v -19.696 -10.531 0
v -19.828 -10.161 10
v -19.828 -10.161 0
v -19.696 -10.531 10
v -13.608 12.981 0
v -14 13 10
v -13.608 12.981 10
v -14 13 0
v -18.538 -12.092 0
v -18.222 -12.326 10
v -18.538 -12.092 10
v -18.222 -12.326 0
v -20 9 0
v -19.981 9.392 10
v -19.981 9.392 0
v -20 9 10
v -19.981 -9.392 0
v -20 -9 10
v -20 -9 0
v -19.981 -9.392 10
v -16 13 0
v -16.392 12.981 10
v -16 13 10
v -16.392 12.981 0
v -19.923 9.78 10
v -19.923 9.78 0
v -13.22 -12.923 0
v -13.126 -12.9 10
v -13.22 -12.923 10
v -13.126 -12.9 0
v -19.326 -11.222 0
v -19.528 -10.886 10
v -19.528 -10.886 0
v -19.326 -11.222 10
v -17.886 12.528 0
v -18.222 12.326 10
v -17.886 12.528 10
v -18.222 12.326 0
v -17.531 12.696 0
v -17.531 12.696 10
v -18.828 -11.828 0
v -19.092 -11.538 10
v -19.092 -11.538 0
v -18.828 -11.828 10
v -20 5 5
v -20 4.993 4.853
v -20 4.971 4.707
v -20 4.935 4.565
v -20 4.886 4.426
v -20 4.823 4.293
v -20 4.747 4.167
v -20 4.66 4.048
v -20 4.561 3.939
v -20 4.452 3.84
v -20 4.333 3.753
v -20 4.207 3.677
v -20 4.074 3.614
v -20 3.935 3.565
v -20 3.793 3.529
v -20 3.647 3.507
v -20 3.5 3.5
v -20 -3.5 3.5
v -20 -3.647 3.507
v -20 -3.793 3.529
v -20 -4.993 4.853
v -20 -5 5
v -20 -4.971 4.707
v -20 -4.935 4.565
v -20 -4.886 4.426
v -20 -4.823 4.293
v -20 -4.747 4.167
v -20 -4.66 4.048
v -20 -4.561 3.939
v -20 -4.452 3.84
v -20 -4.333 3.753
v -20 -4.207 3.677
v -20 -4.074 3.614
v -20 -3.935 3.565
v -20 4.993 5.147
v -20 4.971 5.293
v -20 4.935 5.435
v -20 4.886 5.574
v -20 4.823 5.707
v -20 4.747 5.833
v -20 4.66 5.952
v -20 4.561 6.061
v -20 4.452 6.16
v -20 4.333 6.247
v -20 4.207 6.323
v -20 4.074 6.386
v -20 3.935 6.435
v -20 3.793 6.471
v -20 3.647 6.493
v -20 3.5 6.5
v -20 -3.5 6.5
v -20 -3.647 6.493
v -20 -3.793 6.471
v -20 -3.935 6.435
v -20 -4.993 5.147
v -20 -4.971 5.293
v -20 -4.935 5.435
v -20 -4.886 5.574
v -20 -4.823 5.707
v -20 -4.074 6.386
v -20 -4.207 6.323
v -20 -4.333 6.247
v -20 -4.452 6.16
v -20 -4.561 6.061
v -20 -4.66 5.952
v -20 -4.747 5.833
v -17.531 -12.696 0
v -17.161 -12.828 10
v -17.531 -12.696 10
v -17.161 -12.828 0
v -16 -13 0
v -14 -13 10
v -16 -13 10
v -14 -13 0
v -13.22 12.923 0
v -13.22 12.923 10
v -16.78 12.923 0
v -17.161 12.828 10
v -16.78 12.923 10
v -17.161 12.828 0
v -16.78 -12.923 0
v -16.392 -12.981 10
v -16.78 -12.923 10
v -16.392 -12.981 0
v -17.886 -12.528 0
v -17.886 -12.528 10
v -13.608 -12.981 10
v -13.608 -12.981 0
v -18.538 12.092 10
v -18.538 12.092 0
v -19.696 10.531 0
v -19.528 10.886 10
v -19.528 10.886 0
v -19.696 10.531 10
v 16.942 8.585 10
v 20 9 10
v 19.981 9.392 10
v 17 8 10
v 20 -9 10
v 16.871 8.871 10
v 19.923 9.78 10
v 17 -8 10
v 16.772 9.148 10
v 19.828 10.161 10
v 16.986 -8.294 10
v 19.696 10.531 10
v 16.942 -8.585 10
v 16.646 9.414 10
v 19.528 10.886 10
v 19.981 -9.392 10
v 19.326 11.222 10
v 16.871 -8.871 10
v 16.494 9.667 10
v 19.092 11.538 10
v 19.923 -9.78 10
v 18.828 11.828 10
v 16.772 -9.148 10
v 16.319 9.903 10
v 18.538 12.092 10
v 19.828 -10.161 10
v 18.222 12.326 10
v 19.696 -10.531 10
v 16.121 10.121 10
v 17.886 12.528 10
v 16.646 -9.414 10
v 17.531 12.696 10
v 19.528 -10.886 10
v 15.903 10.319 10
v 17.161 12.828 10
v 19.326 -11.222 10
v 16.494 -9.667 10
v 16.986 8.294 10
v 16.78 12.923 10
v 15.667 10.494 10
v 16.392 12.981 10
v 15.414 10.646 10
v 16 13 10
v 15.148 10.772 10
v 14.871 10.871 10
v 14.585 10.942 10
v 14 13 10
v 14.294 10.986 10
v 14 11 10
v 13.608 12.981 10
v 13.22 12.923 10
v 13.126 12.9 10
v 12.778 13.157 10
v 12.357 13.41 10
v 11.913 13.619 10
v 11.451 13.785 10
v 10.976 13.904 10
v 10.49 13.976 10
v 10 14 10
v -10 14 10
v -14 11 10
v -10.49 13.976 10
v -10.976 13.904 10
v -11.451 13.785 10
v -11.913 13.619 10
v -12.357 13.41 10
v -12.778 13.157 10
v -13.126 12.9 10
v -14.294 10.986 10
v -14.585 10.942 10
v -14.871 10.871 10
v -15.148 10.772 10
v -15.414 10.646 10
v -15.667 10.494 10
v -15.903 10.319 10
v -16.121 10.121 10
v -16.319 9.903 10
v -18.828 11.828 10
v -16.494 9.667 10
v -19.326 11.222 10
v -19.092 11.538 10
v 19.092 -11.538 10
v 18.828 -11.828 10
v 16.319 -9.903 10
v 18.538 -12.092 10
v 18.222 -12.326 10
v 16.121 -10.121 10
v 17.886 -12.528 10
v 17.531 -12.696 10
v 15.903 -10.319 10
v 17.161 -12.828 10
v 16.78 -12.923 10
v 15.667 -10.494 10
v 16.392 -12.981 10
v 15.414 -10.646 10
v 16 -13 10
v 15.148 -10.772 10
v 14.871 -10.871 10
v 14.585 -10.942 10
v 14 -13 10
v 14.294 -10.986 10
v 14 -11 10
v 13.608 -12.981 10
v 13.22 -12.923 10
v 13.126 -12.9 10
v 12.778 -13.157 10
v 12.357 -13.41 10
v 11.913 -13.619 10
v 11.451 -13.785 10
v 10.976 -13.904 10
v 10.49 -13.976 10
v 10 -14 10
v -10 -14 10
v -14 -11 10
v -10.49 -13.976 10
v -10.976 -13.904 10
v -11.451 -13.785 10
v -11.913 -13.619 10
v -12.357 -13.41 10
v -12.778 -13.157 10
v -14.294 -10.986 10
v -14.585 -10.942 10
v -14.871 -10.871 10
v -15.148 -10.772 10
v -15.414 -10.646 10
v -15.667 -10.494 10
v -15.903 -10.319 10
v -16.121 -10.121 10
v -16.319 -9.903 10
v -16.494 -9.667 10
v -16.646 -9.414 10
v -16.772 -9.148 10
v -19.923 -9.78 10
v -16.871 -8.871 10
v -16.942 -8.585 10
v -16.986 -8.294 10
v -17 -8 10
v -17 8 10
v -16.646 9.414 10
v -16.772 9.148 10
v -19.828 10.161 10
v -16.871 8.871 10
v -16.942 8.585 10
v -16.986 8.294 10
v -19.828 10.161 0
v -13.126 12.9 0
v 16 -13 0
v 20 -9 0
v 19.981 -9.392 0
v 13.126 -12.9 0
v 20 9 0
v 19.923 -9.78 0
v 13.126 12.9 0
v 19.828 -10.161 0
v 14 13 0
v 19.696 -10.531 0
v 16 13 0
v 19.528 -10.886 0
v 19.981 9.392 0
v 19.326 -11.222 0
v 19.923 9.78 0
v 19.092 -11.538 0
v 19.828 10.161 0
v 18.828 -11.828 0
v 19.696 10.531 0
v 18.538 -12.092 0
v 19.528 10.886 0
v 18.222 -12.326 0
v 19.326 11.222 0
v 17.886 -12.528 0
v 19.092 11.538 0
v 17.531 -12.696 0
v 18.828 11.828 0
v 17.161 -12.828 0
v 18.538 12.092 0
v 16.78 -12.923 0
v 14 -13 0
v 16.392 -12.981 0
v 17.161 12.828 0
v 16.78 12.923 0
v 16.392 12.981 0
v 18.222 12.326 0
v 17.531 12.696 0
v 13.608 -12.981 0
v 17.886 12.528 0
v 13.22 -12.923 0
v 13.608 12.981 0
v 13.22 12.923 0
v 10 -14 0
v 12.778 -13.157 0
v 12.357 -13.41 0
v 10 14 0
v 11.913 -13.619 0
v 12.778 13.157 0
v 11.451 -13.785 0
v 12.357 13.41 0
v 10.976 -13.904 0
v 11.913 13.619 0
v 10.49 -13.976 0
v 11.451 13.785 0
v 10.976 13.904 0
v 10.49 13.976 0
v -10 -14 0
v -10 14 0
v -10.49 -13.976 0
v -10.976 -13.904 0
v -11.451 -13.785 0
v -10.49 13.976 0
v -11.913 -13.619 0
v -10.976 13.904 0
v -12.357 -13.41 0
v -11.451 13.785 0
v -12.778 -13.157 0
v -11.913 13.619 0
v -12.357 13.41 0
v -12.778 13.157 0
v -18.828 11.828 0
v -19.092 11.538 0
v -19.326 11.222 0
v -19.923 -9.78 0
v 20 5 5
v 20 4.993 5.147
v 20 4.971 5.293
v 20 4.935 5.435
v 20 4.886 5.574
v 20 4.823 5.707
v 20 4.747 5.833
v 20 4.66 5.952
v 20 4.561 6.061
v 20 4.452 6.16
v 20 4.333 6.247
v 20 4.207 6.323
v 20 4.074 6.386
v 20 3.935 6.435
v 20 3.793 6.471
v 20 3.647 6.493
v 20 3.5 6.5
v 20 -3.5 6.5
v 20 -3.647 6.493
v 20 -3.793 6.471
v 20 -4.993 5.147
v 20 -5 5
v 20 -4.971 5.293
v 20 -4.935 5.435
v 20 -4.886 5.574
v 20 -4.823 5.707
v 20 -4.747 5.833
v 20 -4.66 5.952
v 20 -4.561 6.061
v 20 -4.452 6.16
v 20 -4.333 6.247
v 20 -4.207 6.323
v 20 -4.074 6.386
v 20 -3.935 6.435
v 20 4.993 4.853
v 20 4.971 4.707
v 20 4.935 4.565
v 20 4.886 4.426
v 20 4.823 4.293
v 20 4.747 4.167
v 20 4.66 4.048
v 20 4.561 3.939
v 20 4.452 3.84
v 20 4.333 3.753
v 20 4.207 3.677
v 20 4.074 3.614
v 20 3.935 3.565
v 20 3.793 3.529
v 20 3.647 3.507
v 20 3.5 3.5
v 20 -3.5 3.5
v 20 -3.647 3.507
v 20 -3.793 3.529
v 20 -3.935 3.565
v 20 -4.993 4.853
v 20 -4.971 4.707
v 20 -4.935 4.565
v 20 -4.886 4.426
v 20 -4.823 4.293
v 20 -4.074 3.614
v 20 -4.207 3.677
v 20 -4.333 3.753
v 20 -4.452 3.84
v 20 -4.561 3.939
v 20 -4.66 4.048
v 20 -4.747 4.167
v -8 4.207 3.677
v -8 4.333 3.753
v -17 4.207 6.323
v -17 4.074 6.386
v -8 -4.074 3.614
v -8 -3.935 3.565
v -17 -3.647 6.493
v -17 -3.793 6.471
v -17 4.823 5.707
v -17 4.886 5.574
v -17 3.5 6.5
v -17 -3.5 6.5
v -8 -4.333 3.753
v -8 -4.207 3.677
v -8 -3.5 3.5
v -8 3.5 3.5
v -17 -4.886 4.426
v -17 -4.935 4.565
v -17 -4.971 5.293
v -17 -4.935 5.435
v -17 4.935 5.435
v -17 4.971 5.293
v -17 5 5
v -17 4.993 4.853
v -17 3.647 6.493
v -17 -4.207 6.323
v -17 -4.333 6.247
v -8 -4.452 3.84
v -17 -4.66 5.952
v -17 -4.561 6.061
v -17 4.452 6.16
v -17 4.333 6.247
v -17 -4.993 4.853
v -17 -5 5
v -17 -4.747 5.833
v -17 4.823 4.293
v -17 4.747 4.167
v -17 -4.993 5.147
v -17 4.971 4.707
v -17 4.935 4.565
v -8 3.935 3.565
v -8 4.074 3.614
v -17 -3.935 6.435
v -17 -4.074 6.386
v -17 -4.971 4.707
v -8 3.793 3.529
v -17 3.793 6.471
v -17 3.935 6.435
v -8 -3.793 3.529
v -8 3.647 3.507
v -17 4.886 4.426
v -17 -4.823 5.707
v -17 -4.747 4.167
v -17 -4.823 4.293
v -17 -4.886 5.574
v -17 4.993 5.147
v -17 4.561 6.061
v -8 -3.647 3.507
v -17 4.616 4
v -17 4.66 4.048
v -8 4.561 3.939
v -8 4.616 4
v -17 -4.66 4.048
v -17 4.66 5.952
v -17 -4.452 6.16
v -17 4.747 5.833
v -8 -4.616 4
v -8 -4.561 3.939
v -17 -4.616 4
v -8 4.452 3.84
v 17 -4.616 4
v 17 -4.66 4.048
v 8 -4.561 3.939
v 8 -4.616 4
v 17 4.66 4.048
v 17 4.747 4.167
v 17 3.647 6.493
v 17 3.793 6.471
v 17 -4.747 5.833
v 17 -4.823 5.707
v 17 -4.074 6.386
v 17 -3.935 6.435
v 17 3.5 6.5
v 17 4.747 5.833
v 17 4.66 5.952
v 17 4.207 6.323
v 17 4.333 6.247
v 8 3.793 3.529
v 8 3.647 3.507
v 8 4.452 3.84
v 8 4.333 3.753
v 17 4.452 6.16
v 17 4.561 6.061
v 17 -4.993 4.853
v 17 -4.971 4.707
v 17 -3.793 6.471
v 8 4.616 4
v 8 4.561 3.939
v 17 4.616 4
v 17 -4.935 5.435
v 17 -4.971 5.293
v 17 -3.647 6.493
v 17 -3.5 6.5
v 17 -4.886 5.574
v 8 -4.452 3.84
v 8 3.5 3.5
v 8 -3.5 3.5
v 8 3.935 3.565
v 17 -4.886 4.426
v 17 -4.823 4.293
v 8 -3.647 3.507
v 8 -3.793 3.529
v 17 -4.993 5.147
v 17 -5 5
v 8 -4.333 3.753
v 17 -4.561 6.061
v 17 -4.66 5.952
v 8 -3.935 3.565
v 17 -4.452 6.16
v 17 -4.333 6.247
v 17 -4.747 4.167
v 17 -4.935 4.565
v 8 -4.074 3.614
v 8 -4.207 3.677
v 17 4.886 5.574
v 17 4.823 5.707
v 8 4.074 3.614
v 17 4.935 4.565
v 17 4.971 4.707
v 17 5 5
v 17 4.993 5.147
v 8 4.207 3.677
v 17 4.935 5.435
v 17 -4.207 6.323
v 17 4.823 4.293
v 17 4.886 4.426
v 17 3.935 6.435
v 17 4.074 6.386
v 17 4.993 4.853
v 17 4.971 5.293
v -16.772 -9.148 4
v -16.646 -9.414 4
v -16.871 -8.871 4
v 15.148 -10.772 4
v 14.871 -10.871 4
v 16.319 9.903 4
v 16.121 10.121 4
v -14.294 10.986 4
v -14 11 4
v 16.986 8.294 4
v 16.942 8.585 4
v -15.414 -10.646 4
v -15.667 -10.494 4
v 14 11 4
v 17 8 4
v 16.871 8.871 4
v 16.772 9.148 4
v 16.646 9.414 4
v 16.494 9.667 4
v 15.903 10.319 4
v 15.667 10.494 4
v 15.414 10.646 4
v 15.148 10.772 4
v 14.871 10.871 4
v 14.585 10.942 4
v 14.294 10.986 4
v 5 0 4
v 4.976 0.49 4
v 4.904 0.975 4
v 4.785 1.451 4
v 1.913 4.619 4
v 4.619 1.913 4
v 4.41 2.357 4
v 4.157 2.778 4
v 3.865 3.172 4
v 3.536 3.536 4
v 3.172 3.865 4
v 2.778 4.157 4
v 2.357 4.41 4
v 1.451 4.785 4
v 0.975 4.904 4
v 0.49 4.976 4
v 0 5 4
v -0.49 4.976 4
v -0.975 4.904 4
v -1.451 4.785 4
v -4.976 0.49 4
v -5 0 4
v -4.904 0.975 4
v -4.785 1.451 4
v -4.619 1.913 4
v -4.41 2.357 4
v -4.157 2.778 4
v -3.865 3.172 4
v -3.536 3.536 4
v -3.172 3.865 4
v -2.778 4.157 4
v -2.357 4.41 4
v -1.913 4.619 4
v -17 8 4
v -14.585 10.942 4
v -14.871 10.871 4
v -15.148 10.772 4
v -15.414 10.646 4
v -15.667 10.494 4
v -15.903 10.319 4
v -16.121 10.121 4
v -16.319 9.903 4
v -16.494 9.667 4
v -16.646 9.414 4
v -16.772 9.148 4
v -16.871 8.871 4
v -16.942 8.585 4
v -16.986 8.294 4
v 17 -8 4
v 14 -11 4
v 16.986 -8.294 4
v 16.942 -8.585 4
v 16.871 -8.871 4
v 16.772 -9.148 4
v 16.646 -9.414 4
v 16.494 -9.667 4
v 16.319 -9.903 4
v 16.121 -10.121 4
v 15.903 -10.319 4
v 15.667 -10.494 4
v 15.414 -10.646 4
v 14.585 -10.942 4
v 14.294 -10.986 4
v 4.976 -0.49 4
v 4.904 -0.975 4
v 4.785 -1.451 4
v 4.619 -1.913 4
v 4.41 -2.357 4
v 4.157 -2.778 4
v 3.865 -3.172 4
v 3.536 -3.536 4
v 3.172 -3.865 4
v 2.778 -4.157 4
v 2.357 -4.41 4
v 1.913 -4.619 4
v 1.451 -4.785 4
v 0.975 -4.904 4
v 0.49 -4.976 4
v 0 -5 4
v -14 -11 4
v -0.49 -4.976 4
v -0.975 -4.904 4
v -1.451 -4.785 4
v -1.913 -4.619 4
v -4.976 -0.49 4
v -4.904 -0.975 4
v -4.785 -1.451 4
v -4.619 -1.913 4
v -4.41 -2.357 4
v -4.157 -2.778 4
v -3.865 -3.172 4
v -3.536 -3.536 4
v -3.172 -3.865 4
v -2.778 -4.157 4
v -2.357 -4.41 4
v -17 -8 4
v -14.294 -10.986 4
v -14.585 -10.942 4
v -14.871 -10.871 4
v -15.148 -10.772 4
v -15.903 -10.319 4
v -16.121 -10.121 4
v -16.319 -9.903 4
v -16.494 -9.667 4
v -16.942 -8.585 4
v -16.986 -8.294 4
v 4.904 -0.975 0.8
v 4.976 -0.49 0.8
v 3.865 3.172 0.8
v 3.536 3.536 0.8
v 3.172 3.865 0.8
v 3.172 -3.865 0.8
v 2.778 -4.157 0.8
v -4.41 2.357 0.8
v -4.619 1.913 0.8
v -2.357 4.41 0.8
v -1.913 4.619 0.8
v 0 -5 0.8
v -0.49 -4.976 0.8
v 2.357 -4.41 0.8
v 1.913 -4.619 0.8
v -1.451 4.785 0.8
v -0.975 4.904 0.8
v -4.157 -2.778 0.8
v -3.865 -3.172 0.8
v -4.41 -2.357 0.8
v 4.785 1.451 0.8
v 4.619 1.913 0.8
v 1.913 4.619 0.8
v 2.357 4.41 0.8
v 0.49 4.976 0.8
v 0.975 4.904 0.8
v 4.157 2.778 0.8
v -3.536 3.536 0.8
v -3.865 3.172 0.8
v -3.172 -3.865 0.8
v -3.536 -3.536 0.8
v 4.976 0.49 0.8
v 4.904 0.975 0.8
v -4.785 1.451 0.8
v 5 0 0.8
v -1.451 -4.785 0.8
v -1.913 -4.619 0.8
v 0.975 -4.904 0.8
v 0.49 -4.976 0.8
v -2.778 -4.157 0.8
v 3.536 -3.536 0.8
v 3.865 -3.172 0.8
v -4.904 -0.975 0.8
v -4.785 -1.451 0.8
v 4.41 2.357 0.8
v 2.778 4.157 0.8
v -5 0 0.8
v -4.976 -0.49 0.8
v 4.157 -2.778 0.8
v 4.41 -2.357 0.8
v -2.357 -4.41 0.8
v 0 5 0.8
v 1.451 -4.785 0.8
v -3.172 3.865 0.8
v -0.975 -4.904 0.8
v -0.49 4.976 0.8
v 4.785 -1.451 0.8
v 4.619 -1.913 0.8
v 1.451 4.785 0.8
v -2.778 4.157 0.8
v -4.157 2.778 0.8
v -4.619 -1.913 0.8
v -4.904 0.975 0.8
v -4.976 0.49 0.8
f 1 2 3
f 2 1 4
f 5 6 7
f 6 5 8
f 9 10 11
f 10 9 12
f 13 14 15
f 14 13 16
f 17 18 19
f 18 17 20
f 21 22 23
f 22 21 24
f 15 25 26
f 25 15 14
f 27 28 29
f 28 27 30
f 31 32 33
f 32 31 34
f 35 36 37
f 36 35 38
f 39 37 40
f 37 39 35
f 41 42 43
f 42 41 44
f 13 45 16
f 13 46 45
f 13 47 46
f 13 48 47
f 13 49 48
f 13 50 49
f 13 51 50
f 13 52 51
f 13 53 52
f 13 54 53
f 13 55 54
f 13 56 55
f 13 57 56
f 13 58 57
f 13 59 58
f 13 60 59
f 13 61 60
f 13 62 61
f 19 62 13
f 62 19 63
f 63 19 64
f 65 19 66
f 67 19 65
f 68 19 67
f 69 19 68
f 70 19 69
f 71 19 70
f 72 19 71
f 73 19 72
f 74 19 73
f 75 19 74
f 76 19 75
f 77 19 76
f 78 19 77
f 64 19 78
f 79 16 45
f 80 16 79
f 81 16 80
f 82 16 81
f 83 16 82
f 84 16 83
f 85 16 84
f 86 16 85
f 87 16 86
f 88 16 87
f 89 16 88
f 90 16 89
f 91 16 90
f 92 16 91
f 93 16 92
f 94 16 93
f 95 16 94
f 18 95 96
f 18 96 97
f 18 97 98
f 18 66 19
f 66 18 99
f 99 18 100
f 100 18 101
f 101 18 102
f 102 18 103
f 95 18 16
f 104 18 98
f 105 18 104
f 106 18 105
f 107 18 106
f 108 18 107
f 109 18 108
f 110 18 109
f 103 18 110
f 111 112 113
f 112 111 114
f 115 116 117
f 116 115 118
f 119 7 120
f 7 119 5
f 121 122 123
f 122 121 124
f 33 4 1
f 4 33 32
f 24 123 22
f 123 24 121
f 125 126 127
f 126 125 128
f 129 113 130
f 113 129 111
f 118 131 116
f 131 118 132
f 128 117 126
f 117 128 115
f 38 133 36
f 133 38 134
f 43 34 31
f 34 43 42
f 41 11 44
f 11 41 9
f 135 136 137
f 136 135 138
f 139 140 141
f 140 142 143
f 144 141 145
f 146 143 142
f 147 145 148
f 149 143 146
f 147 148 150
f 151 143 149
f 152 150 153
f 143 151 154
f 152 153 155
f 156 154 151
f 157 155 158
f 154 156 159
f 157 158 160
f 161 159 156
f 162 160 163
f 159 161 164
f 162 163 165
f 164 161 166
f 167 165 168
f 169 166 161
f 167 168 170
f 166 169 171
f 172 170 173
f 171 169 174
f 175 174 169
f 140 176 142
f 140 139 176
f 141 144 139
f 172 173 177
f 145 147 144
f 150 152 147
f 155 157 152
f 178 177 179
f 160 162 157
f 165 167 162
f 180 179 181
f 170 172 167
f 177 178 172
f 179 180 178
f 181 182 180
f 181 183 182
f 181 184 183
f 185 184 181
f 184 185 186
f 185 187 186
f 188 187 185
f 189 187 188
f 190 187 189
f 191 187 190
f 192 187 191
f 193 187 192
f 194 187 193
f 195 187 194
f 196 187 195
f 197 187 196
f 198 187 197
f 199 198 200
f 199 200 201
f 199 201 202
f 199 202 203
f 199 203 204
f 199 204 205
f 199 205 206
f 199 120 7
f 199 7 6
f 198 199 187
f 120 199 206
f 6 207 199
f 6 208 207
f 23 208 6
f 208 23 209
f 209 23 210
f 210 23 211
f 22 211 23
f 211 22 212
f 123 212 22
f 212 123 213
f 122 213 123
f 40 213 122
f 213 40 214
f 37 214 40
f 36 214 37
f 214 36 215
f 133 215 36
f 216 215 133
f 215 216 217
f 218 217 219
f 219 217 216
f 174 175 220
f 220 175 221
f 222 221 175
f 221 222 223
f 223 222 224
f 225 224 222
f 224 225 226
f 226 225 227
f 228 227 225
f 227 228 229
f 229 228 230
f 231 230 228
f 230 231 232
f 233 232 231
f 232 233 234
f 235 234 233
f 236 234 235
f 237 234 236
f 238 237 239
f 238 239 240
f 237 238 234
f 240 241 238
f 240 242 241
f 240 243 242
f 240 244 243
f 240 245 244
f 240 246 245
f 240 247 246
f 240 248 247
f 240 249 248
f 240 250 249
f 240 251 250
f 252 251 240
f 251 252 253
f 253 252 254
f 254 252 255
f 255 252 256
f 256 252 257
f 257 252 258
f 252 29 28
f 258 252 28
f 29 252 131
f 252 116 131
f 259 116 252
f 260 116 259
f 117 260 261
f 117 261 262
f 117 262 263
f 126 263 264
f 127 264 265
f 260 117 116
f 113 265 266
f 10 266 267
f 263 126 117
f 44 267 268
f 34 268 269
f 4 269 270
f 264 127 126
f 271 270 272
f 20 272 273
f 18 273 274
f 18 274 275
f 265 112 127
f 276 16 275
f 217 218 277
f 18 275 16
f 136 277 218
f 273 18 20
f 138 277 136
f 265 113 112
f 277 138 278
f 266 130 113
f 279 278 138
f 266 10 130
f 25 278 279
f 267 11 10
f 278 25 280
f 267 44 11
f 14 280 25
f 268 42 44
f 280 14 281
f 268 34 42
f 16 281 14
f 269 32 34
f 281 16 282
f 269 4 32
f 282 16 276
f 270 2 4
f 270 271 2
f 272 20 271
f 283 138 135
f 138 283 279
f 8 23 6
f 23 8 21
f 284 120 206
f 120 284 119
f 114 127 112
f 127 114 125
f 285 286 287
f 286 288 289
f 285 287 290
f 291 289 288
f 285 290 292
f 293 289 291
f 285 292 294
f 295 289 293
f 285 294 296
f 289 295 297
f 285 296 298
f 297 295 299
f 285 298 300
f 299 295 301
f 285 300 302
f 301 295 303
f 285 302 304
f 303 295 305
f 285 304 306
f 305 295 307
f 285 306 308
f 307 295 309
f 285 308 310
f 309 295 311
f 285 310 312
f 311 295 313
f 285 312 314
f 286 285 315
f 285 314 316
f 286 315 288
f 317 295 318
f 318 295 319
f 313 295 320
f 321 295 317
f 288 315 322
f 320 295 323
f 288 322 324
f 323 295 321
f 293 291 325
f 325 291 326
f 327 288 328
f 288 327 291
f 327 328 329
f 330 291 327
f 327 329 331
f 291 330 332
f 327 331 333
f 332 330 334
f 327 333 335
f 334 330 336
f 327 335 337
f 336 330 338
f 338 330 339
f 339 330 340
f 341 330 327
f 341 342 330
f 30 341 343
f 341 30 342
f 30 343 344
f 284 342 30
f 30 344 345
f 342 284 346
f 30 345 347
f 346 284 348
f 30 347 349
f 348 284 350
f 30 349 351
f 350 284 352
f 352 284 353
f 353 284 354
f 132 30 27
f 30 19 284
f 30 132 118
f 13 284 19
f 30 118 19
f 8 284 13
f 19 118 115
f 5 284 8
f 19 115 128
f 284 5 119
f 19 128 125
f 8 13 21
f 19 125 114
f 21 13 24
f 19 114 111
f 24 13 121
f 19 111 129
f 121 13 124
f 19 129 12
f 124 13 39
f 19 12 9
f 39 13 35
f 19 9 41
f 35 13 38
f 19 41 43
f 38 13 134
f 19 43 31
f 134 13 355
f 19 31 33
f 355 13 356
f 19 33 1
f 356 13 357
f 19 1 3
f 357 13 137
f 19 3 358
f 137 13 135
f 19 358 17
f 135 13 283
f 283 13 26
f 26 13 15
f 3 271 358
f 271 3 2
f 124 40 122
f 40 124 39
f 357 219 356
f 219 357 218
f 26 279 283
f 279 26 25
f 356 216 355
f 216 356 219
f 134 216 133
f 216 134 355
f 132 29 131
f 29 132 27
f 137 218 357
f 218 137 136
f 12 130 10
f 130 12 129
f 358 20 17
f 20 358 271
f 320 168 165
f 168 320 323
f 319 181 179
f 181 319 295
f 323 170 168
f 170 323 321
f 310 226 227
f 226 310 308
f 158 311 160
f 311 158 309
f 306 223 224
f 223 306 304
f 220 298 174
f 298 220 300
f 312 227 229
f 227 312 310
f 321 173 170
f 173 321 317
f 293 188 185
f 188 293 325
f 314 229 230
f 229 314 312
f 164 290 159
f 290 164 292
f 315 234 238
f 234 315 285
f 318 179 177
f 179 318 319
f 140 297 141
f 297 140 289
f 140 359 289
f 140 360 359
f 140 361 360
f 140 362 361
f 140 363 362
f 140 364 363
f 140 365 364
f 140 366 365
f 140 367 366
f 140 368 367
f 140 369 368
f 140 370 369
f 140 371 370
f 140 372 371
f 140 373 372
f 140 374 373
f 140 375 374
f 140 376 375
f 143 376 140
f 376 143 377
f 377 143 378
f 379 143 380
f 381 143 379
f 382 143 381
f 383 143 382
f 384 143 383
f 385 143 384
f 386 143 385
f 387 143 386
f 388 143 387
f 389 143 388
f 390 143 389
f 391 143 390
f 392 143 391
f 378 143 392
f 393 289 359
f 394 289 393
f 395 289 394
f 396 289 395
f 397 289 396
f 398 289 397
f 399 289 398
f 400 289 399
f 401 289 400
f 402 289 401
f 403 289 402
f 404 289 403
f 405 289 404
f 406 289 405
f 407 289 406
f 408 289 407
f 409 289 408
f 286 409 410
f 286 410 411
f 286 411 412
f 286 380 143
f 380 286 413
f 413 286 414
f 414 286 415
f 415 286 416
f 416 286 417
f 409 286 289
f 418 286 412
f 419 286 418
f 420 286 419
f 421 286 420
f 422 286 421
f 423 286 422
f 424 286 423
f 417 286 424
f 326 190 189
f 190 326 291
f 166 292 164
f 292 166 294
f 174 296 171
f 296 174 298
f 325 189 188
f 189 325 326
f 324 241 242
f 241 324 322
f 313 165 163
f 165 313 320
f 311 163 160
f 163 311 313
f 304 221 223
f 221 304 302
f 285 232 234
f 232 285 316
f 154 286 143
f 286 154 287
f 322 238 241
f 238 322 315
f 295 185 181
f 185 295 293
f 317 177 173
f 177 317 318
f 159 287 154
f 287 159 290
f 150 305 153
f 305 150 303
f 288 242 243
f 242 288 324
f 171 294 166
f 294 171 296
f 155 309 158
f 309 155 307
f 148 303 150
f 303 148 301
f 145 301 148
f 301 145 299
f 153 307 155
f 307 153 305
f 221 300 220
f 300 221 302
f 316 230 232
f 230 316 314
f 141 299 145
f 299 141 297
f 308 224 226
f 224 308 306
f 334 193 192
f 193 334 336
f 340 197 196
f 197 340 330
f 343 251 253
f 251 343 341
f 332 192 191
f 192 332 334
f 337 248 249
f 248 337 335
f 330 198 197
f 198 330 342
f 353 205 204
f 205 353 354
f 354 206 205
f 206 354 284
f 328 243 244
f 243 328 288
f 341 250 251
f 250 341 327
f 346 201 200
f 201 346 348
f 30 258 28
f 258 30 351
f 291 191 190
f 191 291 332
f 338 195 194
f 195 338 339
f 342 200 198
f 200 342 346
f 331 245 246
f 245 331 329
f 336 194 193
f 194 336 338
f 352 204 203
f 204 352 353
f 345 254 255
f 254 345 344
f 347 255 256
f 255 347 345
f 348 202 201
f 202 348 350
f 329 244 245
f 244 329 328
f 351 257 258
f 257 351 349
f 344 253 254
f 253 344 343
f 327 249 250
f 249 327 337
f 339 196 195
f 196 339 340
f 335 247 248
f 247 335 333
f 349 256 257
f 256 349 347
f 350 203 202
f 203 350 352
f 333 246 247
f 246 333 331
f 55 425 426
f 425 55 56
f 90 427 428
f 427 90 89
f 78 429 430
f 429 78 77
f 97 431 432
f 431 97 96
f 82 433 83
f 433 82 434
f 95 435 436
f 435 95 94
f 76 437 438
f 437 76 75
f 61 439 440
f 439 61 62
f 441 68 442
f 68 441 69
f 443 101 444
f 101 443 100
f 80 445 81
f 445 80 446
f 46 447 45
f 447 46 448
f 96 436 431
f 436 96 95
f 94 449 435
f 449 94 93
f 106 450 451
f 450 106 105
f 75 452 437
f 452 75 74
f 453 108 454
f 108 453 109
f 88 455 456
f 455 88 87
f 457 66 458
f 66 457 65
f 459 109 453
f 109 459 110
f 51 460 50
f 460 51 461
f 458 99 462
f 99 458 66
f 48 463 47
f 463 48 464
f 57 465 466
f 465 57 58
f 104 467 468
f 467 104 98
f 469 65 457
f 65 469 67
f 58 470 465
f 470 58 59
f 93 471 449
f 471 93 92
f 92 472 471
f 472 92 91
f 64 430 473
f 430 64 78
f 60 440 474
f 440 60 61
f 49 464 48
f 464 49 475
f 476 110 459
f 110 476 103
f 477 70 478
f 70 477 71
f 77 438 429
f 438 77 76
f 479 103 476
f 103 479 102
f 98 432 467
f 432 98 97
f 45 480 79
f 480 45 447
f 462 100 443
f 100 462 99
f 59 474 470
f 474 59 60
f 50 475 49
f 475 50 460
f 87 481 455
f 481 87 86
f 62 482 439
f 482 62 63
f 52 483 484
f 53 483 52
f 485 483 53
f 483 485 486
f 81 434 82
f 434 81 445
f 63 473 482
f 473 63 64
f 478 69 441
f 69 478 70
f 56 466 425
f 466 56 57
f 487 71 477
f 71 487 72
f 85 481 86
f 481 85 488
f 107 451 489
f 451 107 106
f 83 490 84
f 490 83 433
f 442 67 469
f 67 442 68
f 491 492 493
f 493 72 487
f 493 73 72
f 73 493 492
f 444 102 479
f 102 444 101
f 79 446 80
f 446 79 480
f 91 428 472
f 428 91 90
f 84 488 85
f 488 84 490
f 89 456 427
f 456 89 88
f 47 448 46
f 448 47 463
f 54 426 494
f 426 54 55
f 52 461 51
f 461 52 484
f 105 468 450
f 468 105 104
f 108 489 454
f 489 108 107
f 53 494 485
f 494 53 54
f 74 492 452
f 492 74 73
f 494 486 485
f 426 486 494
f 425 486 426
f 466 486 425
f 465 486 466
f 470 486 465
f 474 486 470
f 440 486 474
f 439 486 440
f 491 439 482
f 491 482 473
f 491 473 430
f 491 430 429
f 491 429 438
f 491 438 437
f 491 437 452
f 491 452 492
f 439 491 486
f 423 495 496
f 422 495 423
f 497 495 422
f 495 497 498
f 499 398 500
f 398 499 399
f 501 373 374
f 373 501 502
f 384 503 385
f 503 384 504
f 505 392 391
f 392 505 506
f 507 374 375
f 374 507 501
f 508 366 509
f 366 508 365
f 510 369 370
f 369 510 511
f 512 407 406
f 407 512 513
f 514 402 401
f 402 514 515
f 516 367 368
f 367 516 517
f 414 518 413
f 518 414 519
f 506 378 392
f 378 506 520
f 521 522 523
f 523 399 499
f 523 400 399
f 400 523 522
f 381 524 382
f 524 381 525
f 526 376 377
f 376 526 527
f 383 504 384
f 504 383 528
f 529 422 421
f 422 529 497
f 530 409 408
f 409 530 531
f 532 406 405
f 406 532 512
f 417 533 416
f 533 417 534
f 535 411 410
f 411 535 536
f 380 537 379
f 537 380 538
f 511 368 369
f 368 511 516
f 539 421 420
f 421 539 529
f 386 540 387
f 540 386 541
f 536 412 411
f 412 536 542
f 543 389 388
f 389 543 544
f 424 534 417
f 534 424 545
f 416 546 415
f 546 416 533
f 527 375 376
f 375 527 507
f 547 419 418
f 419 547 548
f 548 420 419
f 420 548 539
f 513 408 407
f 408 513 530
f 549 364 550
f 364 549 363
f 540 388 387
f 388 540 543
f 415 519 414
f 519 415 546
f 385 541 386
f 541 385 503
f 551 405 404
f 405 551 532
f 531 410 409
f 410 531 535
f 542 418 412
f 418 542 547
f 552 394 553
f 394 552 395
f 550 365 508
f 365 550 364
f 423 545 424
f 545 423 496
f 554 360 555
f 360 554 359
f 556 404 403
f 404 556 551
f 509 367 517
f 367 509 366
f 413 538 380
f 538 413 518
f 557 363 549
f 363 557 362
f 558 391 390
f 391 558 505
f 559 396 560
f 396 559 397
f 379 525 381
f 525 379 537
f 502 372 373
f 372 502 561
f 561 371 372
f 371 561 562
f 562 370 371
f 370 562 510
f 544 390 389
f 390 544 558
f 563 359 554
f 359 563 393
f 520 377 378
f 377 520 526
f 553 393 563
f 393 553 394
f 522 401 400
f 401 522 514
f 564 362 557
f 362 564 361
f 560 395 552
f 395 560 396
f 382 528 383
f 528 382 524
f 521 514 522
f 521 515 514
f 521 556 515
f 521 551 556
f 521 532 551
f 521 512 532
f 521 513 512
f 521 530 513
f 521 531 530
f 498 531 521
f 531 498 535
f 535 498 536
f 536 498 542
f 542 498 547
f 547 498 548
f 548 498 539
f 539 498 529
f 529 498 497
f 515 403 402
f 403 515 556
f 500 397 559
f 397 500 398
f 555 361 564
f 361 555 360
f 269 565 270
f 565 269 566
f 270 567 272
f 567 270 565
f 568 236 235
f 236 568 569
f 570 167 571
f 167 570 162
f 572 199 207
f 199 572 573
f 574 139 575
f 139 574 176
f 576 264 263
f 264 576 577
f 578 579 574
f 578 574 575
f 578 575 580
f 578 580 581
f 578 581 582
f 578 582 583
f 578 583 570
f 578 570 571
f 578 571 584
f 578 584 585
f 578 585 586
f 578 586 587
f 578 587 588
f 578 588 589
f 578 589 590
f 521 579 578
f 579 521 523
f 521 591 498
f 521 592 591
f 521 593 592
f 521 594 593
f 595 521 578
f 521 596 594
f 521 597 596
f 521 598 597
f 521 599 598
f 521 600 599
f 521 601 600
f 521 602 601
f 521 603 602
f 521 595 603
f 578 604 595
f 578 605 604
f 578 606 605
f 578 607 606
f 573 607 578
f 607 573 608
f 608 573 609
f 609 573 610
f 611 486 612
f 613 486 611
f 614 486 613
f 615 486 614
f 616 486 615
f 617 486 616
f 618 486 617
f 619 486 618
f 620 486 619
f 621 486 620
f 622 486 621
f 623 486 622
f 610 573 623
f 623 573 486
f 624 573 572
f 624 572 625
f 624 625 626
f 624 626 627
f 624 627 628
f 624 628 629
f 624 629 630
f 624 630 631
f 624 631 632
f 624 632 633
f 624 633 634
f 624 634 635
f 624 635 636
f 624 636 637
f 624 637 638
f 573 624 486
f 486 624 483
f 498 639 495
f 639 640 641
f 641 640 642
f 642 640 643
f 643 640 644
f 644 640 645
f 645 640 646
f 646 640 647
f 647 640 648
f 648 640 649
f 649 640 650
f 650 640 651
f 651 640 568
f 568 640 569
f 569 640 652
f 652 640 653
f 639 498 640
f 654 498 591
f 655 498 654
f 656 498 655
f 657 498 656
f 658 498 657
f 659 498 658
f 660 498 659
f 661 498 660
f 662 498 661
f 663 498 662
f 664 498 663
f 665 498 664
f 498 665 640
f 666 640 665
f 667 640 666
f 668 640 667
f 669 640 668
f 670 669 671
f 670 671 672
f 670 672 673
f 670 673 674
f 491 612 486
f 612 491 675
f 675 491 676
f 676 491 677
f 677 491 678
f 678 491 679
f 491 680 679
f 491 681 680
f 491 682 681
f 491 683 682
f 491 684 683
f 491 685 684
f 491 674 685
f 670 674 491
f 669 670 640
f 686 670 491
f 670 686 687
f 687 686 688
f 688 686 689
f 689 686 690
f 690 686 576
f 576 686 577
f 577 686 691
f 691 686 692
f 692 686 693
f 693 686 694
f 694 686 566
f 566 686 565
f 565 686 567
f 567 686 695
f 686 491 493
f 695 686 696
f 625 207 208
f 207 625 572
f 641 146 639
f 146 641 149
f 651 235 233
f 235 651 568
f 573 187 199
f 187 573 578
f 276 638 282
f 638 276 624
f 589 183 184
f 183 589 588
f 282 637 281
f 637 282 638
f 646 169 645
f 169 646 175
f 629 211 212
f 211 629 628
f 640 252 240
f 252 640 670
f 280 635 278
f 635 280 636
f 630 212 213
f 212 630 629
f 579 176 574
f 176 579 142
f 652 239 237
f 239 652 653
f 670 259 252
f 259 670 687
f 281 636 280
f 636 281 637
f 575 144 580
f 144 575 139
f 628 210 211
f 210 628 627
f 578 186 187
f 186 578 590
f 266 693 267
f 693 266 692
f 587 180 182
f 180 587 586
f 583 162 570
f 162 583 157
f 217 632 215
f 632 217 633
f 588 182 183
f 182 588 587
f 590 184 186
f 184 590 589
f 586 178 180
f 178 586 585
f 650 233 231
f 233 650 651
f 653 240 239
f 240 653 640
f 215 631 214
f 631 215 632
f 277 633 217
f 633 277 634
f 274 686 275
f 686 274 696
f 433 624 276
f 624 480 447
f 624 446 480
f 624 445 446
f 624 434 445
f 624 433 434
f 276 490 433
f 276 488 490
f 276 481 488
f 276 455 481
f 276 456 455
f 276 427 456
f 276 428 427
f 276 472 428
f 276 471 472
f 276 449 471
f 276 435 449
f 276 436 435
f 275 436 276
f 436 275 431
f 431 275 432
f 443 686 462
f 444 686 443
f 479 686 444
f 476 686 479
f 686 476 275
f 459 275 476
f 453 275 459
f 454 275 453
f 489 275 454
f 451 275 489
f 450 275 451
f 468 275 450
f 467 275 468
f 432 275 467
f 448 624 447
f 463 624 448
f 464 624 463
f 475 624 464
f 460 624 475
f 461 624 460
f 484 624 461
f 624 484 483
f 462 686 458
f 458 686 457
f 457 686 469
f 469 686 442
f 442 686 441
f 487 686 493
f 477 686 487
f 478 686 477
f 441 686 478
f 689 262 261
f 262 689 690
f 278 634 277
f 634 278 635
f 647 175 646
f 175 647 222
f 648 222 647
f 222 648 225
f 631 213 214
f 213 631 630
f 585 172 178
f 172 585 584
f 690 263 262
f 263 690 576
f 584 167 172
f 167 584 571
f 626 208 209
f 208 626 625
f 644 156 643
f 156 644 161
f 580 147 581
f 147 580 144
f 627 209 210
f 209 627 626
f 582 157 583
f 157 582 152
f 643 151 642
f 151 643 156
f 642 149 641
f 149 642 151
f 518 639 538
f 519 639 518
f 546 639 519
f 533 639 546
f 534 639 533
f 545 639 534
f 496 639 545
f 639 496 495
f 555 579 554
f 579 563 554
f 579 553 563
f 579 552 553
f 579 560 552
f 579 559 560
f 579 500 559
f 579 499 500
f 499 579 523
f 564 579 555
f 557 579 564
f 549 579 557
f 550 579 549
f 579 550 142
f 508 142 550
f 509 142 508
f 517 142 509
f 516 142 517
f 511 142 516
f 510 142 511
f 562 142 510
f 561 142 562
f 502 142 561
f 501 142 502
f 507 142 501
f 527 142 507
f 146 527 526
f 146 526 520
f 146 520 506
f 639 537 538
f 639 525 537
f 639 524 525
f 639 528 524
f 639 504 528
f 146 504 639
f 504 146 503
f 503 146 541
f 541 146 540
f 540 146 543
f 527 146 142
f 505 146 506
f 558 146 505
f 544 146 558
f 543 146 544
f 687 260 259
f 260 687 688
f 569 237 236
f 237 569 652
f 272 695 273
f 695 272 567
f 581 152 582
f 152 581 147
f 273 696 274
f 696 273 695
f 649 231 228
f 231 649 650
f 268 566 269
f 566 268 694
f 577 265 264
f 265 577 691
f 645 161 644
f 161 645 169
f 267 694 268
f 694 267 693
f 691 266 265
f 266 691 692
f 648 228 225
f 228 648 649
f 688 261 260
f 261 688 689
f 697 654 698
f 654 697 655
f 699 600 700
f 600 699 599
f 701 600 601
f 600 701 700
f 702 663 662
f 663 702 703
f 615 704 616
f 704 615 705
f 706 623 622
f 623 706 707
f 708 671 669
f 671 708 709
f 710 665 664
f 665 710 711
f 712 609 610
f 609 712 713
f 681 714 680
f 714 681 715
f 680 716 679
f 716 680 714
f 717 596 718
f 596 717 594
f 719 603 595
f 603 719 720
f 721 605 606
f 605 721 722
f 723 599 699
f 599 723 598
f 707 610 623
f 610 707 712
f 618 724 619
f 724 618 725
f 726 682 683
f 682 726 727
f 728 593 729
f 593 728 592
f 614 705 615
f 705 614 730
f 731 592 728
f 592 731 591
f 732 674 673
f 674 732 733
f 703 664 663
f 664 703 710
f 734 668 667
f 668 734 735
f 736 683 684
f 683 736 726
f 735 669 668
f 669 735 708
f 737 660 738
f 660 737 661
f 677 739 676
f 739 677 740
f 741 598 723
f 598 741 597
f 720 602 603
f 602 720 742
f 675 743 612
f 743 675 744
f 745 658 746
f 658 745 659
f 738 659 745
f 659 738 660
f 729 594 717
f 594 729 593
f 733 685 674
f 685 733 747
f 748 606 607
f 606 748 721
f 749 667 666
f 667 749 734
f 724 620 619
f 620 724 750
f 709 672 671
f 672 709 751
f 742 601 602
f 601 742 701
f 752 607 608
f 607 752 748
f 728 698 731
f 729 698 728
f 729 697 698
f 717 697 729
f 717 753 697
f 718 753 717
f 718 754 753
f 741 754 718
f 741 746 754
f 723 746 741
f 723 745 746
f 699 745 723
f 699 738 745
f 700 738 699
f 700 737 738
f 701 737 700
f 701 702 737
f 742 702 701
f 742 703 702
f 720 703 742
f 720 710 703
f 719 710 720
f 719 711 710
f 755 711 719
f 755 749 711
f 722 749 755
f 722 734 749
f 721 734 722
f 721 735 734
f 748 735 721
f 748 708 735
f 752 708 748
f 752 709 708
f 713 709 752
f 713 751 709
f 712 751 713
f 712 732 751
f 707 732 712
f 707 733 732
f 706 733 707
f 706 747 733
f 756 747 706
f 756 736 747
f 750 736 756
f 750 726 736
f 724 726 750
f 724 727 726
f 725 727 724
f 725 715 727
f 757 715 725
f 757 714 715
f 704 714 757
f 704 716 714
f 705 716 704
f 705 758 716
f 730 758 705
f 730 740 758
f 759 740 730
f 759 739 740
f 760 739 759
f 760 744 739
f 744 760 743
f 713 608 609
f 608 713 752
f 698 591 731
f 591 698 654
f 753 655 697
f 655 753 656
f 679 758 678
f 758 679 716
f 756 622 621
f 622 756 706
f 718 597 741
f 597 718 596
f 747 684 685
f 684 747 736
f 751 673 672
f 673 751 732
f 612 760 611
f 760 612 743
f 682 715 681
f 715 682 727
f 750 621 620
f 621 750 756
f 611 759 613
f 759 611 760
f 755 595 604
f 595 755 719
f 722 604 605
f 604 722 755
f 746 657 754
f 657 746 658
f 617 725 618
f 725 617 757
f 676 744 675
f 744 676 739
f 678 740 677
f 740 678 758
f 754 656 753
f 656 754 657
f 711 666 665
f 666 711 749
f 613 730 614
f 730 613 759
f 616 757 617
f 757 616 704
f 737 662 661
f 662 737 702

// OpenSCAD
/*
  SonhoBand case v0.2 mini
  Variante futura menor, voltada para wearable real.

  Objetivo:
  - Considerar placa compacta tipo ESP32-C3 mini, XIAO ESP32C3
    ou nRF52840 pequeno.
  - Considerar bateria LiPo de 100 a 150 mAh.
  - Manter area inferior fina para sensor termico.
  - Ser o alvo real de conforto para bebe.

  Unidades: milimetros.
  Orientacao:
  - X = comprimento
  - Y = largura
  - Z = altura
*/

$fn = 64;

// -----------------------------
// Parametros principais
// -----------------------------

external_length = 40;
external_width = 28;
external_height = 10;

cavity_length = 34;
cavity_width = 22;
cavity_height = 6;

wall = 2;
corner_radius = 5;

// A cavidade abre pela parte superior. O fundo fica mais espesso nesta
// variante para respeitar a altura util aproximada de 6 mm.
cavity_floor_thickness = external_height - cavity_height;
cavity_corner_radius = max(corner_radius - wall, 1);

// Area inferior fina para contato do sensor termico.
sensor_diameter = 10;
sensor_floor_thickness = 0.8;

// Hastes laterais integradas ao envelope externo.
lug_length = 10;
lug_width = cavity_width + 2 * wall;
lug_projection = 5;
lug_corner_radius = 4;

// Fendas para elastico compacto.
elastic_slot_width = 10;
elastic_slot_height = 3;
elastic_slot_z = external_height / 2;

// Referencias aproximadas dos componentes previstos.
// Estes valores sao apenas guias de projeto, nao sao subtraidos do modelo.
compact_board_size = [26, 18, 4];
lipo_100_150mah_size = [25, 16, 4];
thermal_sensor_size = [8, 8, 2];

// -----------------------------
// Modelo final
// -----------------------------

sonhoband_case_mini();

// Para visualizar referencias internas no preview, descomente:
// component_reference_layout();

// -----------------------------
// Modulos principais
// -----------------------------

module sonhoband_case_mini() {
    difference() {
        union() {
            central_body();
            side_lugs();
        }

        internal_cavity();
        sensor_thin_area();
        elastic_slots();
    }
}

module central_body() {
    rounded_box_xy(
        [external_length - 2 * lug_projection, external_width, external_height],
        corner_radius
    );
}

module side_lugs() {
    for (side = [-1, 1]) {
        translate([
            side * (external_length / 2 - lug_length / 2),
            0,
            0
        ]) {
            rounded_box_xy(
                [lug_length, lug_width, external_height],
                lug_corner_radius
            );
        }
    }
}

module internal_cavity() {
    // Cavidade aberta pela parte superior, aproximando 34 x 22 x 6 mm.
    translate([0, 0, cavity_floor_thickness]) {
        rounded_box_xy(
            [cavity_length, cavity_width, cavity_height + 1],
            cavity_corner_radius
        );
    }
}

module sensor_thin_area() {
    // Rebaixo circular interno que deixa apenas 0,8 mm de material no fundo.
    translate([0, 0, sensor_floor_thickness]) {
        cylinder(
            h = external_height + 2,
            d = sensor_diameter,
            center = false
        );
    }
}

module elastic_slots() {
    for (side = [-1, 1]) {
        translate([
            side * (external_length / 2 - lug_length / 2),
            0,
            elastic_slot_z
        ]) {
            elastic_slot_cut(lug_length + 4);
        }
    }
}

module component_reference_layout() {
    // Guias visuais opcionais para verificar a ideia de arranjo interno.
    color([0.1, 0.3, 1.0, 0.25])
        translate([-3, 0, cavity_floor_thickness + compact_board_size[2] / 2])
            cube(compact_board_size, center = true);

    color([0.9, 0.1, 0.1, 0.25])
        translate([6, 0, cavity_floor_thickness + 4.5])
            cube(lipo_100_150mah_size, center = true);

    color([0.0, 0.8, 0.5, 0.25])
        translate([0, 0, cavity_floor_thickness + 3])
            cube(thermal_sensor_size, center = true);
}

// -----------------------------
// Modulos utilitarios
// -----------------------------

module rounded_box_xy(size, radius) {
    // Caixa com cantos arredondados no plano XY e laterais verticais.
    safe_radius = min(radius, min(size[0], size[1]) / 2);

    hull() {
        for (x = [-size[0] / 2 + safe_radius, size[0] / 2 - safe_radius]) {
            for (y = [-size[1] / 2 + safe_radius, size[1] / 2 - safe_radius]) {
                translate([x, y, 0]) {
                    cylinder(
                        h = size[2],
                        r = safe_radius,
                        center = false
                    );
                }
            }
        }
    }
}

module elastic_slot_cut(length) {
    // Fenda em formato capsula, atravessando cada haste lateral no eixo X.
    slot_radius = elastic_slot_height / 2;

    hull() {
        for (y = [
            -elastic_slot_width / 2 + slot_radius,
            elastic_slot_width / 2 - slot_radius
        ]) {
            translate([0, y, 0]) {
                rotate([0, 90, 0]) {
                    cylinder(
                        h = length,
                        r = slot_radius,
                        center = true
                    );
                }
            }
        }
    }
}
